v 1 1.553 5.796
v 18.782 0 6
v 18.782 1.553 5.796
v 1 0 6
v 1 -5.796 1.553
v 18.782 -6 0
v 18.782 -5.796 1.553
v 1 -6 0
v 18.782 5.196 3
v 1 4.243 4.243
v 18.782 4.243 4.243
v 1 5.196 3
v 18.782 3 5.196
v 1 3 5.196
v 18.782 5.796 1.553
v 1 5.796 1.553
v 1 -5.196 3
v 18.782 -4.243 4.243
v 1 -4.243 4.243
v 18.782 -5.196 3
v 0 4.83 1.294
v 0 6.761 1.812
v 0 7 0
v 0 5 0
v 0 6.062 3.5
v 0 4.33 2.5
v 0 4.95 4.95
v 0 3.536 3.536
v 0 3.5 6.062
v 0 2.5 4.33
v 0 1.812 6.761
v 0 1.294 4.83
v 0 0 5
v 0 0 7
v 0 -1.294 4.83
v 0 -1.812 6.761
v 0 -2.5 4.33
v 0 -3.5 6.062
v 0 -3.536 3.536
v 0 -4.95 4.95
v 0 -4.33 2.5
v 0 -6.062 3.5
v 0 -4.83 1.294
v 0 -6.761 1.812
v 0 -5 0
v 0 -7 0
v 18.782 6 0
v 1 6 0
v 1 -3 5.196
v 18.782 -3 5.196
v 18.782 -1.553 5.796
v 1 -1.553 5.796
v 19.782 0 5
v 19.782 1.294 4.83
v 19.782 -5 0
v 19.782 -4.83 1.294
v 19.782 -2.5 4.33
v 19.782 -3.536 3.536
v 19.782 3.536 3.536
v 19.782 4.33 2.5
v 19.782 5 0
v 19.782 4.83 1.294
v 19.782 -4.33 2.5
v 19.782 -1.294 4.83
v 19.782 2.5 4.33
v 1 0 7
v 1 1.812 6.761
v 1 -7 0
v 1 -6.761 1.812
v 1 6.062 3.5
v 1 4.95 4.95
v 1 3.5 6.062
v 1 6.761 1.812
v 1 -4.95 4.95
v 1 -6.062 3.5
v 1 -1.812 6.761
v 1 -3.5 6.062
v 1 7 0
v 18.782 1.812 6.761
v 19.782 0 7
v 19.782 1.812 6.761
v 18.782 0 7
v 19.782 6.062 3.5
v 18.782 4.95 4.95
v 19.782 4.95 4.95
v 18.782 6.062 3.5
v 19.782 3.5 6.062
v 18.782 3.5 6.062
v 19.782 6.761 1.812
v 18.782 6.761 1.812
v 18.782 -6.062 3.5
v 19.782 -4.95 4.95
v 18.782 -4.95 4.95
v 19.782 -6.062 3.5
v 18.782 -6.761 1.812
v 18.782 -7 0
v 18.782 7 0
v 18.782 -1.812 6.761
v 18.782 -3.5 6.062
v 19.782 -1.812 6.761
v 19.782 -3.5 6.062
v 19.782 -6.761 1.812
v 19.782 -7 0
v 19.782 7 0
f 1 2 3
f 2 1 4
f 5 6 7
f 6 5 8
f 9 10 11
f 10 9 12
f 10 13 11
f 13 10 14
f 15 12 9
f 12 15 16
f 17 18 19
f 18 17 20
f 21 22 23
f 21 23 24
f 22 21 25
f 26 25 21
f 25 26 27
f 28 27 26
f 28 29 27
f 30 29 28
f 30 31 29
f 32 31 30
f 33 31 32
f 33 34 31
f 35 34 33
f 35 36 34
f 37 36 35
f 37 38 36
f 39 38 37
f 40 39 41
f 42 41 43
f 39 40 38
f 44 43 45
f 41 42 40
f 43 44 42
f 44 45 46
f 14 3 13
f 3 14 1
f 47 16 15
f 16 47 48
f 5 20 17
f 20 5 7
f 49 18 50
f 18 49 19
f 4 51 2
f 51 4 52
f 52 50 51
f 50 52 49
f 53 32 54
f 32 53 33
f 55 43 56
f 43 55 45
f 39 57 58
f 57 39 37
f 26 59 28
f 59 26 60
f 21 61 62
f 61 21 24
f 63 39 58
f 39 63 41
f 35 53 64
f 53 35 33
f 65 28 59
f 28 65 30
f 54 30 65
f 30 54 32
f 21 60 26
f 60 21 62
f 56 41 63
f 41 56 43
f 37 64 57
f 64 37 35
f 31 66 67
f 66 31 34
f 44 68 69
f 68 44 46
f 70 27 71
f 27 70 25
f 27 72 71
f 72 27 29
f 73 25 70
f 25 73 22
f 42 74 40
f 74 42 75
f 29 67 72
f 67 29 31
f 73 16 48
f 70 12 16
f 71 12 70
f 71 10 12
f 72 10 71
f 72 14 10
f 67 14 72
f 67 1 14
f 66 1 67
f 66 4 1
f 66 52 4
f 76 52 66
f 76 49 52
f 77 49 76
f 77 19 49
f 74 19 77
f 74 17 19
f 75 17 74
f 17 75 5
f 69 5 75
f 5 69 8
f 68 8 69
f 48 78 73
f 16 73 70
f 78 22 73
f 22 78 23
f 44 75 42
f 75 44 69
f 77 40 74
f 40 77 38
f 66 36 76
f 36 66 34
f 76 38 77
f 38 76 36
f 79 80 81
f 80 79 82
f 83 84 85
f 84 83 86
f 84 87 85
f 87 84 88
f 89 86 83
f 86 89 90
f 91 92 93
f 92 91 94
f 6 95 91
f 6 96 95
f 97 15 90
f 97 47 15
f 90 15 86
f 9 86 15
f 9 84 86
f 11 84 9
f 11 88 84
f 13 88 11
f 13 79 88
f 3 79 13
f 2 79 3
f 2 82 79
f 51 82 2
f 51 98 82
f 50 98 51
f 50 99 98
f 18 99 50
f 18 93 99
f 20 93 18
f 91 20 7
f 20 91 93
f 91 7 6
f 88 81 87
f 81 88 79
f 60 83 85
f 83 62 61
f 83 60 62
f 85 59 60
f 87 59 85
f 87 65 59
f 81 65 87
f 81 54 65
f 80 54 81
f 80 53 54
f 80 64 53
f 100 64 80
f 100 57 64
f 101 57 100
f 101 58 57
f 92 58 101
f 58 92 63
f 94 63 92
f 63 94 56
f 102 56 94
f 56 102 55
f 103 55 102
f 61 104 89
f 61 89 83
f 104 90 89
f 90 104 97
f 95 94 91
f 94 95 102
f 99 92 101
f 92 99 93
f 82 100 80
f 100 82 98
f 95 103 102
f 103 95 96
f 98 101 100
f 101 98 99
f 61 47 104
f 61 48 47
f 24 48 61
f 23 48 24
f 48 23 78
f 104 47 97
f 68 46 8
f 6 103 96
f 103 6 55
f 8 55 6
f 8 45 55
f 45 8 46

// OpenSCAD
// file: ../build_environments.scad
// build_environments.scad: modules to build level sections
//

module pool(diameter=10.0, wall_height=2.0, step_width=3.0, connections=[])
{
    difference() {
        union() {
        difference() {
            cylinder(h=0.5,r1=diameter+step_width,r2=diameter+step_width,$fn=48);
            translate([0,0,-0.1])
                cylinder(h=0.7,r1=diameter,r2=diameter,$fn=48);
        }
        difference() {
            cylinder(h=wall_height,r1=diameter+step_width+1.0,r2=diameter+step_width+1.0,$fn=48);
            translate([0,0,-0.1])
                cylinder(h=wall_height+0.2,r1=diameter+step_width,r2=diameter+step_width,$fn=48);
        }
        }
    
        for (c = connections)
        {
            rotate([0,90,0]) {
                angle = atan2(c[1],c[0]);
                rotate([-angle,0,0]) {
                    cylinder(h=diameter+5.0,r1=c[2],r2=c[2],$fn=48);
                }
            }
        }
    }
}

module straight(length=10.0, width=2.0, dy1=0.0, dy2=0.0, dz=0.0)
{
    dims = [0, 0, 0, 0, 0, (dz/length)];
    matrix = [
        [ 1, dims[0], dims[1], 0 ],
        [ dims[2], 1, dims[4], 0 ],
        [ dims[5], dims[3], 1, 0 ],
        [ 0, 0, 0, 1 ]
    ];
    multmatrix(matrix)
    difference() {
        translate([dy1,0,0])
        union() {
            rotate([0,90,0]) {
                difference() {
                    cylinder(h=(length-dy1-dy2),r1=width+1.0,r2=width+1.0,$fn=24);
                    translate([0,0,-0.1])
                        cylinder(h=(length-dy1-dy2+0.2),r1=width,r2=width,$fn=24);
                }
                difference() {
                    cylinder(h=1.0,r1=width+2.0,r2=width+2.0,$fn=24);
                    translate([0,0,-0.1])
                        cylinder(h=1.2,r1=width,r2=width,$fn=24);
                }
                translate([0,0,(length-dy1-dy2)-1.0]) {
                    difference() {
                        cylinder(h=1.0,r1=width+2.0,r2=width+2.0,$fn=24);
                        translate([0,0,-0.1])
                            cylinder(h=1.2,r1=width,r2=width,$fn=24);
                    }
                }
            }
        }
        translate([0,0,-(2*width+4.0)/2])
            cube([3*length,3*length,2*width+4.0],center=true);
    }
}

module curve(p0=[0,0], center=[0,0], dir=1, angle=0.0, width=2.0)
{
    radius = sqrt((p0[0]-center[0])*(p0[0]-center[0]) + (p0[1]-center[1])*(p0[1]-center[1]));
    if (dir == 0) {
        difference() {
            rotate([0,0,-90])
            difference() {
                rotate_extrude(angle = angle, convexity = 10, $fn=32)
                    translate([radius, 0, 0])
                        circle(r = width+1.0,$fn=24);
                rotate([0,0,-1.0])
                    rotate_extrude(angle = angle+2.0, convexity = 10, $fn=32)
                        translate([radius, 0, 0])
                            circle(r = width,$fn=24);
            }
            translate([0,0,-(2*width+4.0)/2])
                cube([5*radius,5*radius,2*width+4.0],center=true);
        }
    }
    else {
        difference() {
            rotate([0,0,90])
            difference() {
                rotate_extrude(angle = -angle, convexity = 10, $fn=32)
                    translate([radius, 0, 0])
                        circle(r = width+1.0,$fn=24);
                rotate([0,0,1.0])
                    rotate_extrude(angle = -angle-2.0, convexity = 10, $fn=32)
                        translate([radius, 0, 0])
                            circle(r = width,$fn=24);
            }
            translate([0,0,-(2*width+4.0)/2])
                cube([5*radius,5*radius,2*width+4.0],center=true);
        }
    }

}

// test pool
//pool(diameter=12.0000, wall_height=3.0000, step_width=3.0000, connections=[[0.0000,-26.0000,2.0000], [23.6074,0.0000,2.0000]]);

// test straight, slope
//straight(length=26.0000, width=2.0000, dy1=11.8322, dy2=6.7082, dz=0.0000);
//straight(length=29.1549, width=12.0000, dy1=0.0000, dy2=0.0000, dz=-15.0000);

// test curve
//curve(p0=[23.6074, 0.0000], center=[23.6074, 5.0000], dir=0, angle=60.1011, width=2.0000);
//curve(p0=[33.6426, 12.4219], center=[37.9771, 9.9295], dir=1, angle=120.4627, width=2.0000);
// main file
use <../build_environments.scad>;
straight(length=19.7822, width=5.0000, dy1=0.0000, dy2=0.0000, dz=0.0000);
